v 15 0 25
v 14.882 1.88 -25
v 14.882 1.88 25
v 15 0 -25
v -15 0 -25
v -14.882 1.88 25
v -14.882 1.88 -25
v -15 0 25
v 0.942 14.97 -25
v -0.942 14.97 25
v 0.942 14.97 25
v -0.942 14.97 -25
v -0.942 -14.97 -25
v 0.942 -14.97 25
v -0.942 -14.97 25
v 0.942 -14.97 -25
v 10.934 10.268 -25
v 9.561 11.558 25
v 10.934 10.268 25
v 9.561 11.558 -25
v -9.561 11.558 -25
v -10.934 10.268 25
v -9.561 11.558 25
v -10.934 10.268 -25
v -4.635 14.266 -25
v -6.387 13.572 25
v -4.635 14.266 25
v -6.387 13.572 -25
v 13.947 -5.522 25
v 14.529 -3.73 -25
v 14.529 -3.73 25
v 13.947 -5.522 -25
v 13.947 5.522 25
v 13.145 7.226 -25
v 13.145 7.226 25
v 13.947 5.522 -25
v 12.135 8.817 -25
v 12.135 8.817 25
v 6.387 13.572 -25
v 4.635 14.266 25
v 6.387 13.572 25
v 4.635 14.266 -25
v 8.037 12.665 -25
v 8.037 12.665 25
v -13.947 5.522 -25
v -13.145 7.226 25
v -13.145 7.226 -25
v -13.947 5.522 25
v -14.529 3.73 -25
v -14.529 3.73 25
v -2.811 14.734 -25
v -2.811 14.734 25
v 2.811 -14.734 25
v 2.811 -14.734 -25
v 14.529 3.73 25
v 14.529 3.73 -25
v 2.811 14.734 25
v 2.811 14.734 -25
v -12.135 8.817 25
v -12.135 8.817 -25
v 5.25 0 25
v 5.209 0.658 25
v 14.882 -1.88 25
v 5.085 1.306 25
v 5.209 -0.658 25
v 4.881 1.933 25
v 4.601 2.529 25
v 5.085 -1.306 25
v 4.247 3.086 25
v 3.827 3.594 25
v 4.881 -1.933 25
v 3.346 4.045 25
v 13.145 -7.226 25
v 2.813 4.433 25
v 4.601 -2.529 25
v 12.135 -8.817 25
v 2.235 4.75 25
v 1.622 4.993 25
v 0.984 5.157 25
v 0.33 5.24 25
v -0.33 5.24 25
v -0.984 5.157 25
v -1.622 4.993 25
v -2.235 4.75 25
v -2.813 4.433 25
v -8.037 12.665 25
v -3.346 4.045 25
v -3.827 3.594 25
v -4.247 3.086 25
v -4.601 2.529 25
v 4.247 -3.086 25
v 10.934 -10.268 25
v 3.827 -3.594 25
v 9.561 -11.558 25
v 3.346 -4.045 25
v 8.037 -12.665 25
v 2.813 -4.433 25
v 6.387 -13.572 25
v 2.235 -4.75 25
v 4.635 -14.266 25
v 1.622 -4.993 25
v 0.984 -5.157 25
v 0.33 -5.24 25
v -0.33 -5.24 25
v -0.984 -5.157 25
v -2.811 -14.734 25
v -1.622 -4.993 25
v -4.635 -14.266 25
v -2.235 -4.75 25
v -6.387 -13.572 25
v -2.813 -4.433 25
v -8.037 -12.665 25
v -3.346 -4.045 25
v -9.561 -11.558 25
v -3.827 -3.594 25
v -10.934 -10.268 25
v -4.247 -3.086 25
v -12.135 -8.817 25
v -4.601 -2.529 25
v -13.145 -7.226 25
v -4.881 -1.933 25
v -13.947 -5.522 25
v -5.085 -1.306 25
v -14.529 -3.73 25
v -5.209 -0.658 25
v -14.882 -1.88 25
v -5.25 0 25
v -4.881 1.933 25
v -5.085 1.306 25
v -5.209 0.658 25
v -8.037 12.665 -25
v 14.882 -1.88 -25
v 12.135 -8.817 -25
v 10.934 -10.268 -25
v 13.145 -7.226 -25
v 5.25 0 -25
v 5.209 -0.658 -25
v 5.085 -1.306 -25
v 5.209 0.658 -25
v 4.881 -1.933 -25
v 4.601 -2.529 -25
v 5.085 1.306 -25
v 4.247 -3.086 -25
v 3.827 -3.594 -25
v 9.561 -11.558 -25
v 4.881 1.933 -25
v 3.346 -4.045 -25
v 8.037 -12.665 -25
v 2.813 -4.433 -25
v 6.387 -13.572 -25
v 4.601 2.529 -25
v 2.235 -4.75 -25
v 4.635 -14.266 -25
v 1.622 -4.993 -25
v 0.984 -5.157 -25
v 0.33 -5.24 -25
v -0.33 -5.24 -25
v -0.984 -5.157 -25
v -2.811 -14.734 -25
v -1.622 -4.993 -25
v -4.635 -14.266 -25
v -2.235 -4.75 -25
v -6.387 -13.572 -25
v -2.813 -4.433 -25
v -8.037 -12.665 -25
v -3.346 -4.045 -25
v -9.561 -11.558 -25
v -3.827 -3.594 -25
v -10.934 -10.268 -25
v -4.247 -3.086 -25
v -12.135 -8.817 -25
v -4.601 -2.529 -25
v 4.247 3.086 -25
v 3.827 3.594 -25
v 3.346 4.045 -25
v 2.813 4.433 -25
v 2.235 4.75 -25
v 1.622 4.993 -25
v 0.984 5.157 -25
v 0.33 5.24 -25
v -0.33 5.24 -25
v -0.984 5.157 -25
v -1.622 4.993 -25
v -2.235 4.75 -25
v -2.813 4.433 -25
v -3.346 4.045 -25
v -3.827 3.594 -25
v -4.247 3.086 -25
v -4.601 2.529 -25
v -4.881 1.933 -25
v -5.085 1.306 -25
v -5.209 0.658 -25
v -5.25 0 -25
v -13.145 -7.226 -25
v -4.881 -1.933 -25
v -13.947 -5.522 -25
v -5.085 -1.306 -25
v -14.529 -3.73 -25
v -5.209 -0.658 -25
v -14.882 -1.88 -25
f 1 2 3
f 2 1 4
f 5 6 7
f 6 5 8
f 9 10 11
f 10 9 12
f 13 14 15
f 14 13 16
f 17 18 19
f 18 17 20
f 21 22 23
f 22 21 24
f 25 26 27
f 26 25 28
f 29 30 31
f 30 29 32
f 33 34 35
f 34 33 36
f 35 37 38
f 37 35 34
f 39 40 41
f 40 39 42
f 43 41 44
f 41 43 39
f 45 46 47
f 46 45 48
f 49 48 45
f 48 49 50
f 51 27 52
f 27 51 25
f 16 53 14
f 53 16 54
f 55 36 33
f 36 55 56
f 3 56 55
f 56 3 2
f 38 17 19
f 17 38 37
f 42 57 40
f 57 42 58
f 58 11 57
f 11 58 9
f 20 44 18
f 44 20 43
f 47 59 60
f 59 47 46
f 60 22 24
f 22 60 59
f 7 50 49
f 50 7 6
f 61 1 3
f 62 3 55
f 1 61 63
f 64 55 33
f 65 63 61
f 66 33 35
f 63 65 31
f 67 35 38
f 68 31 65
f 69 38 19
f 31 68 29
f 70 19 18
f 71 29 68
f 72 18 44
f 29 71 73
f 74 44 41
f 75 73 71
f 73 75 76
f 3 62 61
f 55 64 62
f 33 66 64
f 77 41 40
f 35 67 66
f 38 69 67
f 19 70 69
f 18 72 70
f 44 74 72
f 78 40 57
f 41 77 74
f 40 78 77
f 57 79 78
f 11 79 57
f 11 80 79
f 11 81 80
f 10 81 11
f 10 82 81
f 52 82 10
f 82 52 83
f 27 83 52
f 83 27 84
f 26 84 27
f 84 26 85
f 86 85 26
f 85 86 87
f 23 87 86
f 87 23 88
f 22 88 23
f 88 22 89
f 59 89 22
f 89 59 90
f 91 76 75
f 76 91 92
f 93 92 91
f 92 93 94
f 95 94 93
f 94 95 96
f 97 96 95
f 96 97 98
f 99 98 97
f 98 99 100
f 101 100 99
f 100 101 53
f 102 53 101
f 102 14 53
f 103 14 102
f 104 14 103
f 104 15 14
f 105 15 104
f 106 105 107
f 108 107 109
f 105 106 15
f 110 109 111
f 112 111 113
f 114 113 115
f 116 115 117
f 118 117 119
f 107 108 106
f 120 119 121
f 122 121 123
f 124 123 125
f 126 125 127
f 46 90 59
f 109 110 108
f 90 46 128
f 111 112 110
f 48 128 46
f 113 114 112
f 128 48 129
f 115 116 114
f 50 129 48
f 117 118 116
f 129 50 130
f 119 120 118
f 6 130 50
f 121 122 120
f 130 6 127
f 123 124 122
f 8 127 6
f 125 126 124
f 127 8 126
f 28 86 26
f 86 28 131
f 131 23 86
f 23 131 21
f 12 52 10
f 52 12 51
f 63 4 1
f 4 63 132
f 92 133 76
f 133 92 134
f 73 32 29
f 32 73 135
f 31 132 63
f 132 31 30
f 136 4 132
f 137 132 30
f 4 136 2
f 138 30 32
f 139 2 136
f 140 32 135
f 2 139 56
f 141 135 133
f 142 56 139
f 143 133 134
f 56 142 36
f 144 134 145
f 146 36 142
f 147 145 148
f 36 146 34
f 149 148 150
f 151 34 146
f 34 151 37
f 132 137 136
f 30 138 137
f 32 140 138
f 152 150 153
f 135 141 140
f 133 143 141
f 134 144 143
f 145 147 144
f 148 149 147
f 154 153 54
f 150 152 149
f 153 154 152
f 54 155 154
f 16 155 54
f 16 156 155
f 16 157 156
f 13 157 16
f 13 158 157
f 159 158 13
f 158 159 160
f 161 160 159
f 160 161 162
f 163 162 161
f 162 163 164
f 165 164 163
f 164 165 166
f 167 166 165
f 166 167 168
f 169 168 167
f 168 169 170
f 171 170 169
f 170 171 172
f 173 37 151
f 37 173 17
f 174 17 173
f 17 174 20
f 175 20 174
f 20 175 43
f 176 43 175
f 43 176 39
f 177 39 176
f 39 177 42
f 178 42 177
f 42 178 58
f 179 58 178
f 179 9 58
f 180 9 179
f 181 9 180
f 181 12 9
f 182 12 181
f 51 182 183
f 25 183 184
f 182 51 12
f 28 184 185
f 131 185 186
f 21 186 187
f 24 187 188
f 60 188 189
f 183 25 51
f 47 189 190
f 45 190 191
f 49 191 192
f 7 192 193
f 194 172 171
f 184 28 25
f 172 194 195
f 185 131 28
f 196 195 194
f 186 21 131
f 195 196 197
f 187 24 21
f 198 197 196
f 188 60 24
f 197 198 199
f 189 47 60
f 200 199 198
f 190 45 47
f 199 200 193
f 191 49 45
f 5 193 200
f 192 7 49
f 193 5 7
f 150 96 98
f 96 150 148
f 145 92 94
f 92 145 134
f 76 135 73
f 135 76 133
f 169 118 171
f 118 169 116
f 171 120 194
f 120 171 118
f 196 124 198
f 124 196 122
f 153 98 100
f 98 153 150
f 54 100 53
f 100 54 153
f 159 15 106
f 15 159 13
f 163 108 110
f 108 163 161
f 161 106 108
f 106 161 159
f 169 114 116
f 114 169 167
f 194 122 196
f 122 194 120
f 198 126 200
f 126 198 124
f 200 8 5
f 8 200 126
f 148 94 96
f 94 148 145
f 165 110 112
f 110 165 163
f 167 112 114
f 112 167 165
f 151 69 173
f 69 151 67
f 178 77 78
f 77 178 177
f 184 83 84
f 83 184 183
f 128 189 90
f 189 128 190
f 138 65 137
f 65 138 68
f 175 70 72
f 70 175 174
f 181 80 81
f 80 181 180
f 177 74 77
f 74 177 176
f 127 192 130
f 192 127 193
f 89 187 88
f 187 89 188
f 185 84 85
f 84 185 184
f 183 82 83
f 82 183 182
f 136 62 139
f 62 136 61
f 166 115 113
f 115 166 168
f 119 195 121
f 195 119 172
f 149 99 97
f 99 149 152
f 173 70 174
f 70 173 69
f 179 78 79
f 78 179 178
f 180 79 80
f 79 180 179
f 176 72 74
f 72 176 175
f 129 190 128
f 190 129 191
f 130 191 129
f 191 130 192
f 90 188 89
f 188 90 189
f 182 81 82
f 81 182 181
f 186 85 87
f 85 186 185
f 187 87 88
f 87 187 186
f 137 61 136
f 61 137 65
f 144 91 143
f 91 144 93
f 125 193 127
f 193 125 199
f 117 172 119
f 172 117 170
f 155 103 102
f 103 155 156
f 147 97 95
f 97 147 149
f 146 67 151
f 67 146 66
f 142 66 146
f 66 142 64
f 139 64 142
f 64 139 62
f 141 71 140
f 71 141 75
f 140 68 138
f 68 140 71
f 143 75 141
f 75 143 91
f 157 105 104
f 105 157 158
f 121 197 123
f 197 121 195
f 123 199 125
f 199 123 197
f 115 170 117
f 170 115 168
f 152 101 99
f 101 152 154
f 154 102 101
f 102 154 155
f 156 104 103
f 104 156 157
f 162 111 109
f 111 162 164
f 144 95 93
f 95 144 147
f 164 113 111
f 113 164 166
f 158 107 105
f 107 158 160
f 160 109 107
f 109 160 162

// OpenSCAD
$fn = 50;


difference() {
	union() {
		translate(v = [0, 0, -25.0000000000]) {
			cylinder(h = 50, r = 15.0000000000);
		}
	}
	union() {
		translate(v = [0, 0, -100.0000000000]) {
			cylinder(h = 200, r = 5.2500000000);
		}
	}
}
